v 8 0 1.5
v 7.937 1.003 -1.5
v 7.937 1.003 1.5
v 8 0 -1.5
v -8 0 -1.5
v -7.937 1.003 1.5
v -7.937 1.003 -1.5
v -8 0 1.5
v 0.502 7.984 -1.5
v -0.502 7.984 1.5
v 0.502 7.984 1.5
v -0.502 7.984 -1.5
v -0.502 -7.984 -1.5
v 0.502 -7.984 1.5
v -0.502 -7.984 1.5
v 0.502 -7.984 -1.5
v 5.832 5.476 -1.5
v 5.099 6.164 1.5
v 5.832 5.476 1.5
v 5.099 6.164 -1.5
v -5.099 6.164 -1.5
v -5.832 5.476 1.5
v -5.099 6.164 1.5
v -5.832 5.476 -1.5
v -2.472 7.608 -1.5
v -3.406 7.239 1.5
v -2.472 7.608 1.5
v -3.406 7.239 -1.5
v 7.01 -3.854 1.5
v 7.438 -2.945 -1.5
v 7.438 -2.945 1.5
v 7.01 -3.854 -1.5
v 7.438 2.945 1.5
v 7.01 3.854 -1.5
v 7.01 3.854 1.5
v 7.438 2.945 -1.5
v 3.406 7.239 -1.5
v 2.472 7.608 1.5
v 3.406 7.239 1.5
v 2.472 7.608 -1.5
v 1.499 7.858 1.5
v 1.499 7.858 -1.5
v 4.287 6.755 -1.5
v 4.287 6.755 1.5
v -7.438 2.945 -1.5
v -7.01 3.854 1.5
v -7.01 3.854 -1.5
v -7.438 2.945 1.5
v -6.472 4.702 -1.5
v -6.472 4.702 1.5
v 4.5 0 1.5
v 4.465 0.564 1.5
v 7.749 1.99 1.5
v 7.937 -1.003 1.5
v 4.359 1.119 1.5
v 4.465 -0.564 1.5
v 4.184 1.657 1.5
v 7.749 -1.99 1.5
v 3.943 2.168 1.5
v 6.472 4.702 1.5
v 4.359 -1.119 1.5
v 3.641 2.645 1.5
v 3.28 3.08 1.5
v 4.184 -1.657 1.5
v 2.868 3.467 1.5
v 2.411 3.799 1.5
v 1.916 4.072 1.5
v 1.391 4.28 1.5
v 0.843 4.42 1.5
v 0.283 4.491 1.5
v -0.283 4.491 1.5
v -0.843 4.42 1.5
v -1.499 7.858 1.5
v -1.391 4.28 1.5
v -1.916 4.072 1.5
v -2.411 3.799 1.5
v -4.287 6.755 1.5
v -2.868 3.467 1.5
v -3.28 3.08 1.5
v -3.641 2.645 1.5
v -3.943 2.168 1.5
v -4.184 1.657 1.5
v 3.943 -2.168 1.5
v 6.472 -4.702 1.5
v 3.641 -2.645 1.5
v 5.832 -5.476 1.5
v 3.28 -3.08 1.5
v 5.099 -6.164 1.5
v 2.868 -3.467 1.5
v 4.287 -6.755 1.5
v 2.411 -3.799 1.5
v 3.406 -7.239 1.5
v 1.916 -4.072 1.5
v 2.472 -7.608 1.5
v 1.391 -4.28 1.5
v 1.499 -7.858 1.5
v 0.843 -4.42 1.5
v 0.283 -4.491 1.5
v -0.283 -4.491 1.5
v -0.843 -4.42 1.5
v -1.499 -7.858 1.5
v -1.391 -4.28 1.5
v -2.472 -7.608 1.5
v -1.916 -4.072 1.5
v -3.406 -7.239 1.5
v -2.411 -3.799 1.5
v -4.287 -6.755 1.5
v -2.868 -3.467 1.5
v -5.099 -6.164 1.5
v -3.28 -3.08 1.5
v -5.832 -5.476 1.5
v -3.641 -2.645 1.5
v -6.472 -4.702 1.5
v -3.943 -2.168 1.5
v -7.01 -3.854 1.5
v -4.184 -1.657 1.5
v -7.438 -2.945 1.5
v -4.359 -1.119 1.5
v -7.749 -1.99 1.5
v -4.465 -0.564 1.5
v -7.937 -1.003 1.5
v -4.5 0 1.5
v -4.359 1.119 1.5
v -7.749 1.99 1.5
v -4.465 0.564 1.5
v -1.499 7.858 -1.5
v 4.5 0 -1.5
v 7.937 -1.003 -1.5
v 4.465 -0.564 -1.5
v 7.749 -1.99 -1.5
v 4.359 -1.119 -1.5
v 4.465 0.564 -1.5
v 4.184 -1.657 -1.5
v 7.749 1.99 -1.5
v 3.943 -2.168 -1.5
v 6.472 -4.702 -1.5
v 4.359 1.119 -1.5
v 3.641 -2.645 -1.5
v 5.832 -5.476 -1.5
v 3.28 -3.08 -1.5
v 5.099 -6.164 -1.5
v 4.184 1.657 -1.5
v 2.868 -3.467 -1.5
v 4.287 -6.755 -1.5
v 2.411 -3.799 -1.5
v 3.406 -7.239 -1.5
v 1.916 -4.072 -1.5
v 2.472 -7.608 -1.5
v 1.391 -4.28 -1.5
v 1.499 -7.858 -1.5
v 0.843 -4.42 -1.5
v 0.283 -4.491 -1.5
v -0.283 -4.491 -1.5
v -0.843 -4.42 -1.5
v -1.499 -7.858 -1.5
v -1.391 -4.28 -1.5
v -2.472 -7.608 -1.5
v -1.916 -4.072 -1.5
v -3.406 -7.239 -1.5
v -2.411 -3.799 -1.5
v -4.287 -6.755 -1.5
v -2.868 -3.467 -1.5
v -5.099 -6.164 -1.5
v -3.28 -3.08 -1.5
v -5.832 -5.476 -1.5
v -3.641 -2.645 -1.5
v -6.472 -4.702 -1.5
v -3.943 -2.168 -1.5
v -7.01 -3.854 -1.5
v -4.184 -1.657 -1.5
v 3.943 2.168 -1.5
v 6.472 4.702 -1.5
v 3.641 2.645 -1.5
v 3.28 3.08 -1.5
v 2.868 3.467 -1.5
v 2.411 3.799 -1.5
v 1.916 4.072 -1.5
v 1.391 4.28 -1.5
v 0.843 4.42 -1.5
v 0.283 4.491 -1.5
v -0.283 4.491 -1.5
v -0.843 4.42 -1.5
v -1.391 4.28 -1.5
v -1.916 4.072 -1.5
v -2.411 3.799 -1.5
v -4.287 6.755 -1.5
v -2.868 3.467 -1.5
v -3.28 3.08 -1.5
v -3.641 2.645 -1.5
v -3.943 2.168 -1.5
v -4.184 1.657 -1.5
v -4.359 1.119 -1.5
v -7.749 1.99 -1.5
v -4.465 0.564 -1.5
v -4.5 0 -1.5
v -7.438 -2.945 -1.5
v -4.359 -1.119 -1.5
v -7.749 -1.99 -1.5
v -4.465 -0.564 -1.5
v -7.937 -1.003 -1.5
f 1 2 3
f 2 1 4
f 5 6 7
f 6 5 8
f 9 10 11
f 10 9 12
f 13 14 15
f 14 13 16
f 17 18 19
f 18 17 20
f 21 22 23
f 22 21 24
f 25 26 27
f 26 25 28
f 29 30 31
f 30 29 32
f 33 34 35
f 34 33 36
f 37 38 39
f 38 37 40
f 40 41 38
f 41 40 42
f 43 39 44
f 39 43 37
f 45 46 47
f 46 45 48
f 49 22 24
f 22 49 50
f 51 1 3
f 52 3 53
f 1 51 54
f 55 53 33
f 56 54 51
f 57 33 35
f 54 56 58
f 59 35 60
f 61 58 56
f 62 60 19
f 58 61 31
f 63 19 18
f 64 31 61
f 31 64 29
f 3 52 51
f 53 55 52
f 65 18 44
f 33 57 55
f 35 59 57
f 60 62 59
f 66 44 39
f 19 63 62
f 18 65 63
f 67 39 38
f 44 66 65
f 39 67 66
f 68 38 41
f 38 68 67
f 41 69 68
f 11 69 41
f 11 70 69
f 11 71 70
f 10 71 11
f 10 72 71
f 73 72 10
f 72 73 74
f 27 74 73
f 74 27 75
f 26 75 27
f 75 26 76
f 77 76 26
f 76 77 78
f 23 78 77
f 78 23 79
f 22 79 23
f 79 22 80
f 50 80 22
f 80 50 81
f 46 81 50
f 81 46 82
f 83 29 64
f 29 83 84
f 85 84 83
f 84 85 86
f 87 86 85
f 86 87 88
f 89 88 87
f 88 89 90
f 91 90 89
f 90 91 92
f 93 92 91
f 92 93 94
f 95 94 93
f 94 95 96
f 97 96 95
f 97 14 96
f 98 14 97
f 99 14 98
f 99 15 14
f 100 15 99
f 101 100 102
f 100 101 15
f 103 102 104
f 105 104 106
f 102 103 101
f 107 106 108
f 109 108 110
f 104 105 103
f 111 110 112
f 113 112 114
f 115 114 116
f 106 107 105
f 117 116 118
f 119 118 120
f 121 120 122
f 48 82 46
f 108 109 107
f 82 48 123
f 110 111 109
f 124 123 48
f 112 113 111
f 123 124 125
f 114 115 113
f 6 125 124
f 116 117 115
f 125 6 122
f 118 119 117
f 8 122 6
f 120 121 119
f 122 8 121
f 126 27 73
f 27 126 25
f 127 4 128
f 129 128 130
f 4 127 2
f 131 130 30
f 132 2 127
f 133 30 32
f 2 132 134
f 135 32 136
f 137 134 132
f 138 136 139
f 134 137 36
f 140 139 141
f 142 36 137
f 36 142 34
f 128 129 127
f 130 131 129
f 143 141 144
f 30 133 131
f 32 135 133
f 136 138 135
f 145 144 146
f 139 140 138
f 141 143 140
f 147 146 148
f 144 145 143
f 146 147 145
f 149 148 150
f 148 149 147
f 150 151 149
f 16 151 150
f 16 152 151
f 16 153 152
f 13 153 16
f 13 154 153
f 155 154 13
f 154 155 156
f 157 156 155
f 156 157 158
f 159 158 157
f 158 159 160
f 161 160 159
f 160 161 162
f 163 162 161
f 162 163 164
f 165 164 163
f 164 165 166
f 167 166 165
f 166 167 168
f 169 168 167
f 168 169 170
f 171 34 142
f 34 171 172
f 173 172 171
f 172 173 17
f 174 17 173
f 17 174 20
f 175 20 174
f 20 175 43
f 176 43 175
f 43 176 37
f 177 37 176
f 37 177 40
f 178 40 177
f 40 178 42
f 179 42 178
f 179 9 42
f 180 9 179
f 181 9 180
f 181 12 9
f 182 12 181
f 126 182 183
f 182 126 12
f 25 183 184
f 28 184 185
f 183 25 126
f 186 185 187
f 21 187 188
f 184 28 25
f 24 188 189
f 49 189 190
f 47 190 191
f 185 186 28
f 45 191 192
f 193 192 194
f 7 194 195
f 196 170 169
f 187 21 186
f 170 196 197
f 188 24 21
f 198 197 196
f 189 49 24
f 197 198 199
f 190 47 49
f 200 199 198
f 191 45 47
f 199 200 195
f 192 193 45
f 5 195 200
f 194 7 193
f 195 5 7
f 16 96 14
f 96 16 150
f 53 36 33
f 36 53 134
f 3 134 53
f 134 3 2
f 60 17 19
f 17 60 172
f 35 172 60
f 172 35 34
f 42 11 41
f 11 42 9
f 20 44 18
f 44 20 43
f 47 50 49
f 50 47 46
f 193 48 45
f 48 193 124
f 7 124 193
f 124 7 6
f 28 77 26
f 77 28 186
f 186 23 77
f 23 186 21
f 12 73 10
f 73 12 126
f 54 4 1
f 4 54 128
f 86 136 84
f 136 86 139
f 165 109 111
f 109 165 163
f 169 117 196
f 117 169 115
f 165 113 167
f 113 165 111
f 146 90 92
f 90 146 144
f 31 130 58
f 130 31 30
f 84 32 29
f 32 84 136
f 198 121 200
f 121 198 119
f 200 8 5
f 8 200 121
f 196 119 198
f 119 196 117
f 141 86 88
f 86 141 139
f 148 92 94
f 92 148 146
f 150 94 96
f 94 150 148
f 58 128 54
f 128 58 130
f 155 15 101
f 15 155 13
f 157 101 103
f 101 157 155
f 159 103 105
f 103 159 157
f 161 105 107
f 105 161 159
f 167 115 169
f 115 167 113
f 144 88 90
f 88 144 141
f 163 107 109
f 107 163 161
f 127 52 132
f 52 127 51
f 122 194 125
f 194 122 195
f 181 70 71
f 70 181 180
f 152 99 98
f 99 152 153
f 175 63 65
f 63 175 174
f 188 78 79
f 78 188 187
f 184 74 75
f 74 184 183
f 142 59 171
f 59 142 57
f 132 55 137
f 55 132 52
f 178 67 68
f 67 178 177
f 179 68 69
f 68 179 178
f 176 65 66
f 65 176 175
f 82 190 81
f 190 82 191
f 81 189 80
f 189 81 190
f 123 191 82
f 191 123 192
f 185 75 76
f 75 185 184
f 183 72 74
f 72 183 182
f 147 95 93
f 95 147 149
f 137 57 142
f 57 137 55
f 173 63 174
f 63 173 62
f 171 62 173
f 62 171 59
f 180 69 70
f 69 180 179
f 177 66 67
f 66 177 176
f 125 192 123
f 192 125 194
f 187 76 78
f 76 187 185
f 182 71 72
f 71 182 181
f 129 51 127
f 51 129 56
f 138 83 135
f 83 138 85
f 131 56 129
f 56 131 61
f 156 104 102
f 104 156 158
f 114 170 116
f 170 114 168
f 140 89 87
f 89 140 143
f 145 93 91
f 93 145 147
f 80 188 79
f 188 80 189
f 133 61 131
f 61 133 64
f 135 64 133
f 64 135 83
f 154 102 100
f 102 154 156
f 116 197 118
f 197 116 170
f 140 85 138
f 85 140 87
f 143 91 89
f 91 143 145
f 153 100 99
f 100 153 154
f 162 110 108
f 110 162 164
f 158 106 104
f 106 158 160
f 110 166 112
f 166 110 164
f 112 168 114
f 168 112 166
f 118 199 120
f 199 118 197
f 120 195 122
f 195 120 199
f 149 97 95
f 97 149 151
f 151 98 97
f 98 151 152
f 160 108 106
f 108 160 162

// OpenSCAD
$fn = 50;


difference() {
	union() {
		translate(v = [0, 0, -1.5000000000]) {
			cylinder(h = 3, r = 8.0000000000);
		}
	}
	union() {
		translate(v = [0, 0, -100.0000000000]) {
			cylinder(h = 200, r = 4.5000000000);
		}
	}
}
